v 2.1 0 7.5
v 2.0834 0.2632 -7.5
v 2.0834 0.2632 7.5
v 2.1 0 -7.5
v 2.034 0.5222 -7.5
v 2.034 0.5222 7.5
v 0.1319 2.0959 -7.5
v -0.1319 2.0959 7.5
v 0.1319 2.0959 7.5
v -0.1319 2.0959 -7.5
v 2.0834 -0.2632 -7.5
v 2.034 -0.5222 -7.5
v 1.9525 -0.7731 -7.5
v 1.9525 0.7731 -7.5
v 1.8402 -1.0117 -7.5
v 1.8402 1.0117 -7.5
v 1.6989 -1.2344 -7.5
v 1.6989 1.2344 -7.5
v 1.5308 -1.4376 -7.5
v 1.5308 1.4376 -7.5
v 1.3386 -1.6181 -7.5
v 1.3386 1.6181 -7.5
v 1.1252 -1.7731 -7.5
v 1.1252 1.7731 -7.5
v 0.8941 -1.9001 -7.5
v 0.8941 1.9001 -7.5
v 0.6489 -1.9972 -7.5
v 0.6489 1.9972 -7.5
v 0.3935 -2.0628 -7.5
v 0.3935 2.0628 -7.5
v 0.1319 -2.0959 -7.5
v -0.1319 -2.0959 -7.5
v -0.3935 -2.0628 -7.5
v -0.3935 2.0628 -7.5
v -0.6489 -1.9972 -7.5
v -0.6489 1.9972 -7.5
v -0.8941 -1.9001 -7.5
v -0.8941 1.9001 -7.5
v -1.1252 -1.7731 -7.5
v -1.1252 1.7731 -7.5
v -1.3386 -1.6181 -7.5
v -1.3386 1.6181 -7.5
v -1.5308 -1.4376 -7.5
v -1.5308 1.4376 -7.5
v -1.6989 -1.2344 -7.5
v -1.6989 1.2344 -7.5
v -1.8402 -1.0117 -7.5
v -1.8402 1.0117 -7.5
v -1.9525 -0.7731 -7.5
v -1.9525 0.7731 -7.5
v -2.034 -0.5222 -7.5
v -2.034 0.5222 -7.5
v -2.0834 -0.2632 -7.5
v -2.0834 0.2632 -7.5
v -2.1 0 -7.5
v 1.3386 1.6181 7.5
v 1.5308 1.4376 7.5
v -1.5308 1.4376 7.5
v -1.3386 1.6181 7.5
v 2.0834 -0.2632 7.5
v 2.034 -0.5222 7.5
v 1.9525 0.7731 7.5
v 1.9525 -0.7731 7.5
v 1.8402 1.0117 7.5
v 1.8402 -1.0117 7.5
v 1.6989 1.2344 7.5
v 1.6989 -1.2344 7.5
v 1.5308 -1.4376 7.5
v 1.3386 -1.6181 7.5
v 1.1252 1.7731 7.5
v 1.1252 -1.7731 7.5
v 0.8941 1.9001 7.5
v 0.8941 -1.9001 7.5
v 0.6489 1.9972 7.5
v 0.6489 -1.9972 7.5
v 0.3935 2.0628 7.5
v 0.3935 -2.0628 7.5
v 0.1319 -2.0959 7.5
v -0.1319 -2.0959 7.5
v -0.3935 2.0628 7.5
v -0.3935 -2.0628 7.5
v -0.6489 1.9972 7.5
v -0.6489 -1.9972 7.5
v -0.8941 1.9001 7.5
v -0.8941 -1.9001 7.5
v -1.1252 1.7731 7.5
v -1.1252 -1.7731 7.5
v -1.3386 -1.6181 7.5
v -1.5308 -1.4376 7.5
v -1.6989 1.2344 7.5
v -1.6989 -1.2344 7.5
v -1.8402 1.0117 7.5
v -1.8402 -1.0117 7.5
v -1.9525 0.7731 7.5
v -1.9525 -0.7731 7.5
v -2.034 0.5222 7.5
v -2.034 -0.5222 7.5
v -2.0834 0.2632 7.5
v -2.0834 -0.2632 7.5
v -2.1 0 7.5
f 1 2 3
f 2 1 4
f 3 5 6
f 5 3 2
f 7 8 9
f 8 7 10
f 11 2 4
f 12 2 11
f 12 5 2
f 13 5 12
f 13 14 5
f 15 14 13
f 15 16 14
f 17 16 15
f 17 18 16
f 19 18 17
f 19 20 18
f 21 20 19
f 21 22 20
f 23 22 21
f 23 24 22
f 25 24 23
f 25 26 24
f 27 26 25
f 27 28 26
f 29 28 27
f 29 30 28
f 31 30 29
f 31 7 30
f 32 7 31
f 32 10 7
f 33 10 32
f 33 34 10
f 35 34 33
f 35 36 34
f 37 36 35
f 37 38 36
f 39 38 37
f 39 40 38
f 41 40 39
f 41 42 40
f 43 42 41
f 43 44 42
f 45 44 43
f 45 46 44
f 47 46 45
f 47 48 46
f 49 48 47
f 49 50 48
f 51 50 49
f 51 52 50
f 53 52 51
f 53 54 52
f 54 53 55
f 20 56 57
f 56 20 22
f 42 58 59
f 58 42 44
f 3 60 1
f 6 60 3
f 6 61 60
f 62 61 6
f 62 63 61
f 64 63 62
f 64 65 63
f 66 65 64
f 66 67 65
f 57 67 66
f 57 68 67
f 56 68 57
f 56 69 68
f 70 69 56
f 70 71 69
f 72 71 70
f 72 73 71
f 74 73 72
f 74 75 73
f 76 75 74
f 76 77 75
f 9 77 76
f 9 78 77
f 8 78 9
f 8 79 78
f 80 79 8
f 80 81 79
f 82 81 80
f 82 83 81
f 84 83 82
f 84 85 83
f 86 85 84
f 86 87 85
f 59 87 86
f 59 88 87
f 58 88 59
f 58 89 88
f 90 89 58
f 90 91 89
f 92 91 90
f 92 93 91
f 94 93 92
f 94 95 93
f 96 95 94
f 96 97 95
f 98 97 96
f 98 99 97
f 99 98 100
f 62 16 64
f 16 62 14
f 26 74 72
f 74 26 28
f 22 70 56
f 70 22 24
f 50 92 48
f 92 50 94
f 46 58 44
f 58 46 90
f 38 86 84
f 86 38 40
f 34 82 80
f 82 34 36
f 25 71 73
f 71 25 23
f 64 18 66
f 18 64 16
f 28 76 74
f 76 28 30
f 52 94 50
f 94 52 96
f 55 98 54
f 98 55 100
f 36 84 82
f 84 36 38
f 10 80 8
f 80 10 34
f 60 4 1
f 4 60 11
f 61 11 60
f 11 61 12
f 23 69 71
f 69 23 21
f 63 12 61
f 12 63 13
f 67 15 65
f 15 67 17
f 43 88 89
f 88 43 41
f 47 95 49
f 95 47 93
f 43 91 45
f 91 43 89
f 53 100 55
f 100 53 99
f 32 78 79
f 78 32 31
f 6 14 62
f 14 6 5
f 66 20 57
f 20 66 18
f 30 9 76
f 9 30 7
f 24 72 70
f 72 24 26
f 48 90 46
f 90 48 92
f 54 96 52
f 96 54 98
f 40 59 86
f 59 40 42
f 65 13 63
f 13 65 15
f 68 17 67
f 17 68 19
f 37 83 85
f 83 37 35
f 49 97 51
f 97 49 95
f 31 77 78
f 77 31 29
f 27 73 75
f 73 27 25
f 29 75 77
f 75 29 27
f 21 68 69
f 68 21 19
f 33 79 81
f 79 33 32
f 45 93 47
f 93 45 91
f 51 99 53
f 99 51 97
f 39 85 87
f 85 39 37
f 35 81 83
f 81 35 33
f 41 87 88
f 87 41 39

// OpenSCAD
$fn = 50;


difference() {
	union() {
		translate(v = [0, 0, -7.5000000000]) {
			cylinder(h = 15, r = 2.1000000000);
		}
	}
	union() {
		translate(v = [0, 0, -100.0000000000]) {
			cylinder(h = 200, r = 0);
		}
	}
}
